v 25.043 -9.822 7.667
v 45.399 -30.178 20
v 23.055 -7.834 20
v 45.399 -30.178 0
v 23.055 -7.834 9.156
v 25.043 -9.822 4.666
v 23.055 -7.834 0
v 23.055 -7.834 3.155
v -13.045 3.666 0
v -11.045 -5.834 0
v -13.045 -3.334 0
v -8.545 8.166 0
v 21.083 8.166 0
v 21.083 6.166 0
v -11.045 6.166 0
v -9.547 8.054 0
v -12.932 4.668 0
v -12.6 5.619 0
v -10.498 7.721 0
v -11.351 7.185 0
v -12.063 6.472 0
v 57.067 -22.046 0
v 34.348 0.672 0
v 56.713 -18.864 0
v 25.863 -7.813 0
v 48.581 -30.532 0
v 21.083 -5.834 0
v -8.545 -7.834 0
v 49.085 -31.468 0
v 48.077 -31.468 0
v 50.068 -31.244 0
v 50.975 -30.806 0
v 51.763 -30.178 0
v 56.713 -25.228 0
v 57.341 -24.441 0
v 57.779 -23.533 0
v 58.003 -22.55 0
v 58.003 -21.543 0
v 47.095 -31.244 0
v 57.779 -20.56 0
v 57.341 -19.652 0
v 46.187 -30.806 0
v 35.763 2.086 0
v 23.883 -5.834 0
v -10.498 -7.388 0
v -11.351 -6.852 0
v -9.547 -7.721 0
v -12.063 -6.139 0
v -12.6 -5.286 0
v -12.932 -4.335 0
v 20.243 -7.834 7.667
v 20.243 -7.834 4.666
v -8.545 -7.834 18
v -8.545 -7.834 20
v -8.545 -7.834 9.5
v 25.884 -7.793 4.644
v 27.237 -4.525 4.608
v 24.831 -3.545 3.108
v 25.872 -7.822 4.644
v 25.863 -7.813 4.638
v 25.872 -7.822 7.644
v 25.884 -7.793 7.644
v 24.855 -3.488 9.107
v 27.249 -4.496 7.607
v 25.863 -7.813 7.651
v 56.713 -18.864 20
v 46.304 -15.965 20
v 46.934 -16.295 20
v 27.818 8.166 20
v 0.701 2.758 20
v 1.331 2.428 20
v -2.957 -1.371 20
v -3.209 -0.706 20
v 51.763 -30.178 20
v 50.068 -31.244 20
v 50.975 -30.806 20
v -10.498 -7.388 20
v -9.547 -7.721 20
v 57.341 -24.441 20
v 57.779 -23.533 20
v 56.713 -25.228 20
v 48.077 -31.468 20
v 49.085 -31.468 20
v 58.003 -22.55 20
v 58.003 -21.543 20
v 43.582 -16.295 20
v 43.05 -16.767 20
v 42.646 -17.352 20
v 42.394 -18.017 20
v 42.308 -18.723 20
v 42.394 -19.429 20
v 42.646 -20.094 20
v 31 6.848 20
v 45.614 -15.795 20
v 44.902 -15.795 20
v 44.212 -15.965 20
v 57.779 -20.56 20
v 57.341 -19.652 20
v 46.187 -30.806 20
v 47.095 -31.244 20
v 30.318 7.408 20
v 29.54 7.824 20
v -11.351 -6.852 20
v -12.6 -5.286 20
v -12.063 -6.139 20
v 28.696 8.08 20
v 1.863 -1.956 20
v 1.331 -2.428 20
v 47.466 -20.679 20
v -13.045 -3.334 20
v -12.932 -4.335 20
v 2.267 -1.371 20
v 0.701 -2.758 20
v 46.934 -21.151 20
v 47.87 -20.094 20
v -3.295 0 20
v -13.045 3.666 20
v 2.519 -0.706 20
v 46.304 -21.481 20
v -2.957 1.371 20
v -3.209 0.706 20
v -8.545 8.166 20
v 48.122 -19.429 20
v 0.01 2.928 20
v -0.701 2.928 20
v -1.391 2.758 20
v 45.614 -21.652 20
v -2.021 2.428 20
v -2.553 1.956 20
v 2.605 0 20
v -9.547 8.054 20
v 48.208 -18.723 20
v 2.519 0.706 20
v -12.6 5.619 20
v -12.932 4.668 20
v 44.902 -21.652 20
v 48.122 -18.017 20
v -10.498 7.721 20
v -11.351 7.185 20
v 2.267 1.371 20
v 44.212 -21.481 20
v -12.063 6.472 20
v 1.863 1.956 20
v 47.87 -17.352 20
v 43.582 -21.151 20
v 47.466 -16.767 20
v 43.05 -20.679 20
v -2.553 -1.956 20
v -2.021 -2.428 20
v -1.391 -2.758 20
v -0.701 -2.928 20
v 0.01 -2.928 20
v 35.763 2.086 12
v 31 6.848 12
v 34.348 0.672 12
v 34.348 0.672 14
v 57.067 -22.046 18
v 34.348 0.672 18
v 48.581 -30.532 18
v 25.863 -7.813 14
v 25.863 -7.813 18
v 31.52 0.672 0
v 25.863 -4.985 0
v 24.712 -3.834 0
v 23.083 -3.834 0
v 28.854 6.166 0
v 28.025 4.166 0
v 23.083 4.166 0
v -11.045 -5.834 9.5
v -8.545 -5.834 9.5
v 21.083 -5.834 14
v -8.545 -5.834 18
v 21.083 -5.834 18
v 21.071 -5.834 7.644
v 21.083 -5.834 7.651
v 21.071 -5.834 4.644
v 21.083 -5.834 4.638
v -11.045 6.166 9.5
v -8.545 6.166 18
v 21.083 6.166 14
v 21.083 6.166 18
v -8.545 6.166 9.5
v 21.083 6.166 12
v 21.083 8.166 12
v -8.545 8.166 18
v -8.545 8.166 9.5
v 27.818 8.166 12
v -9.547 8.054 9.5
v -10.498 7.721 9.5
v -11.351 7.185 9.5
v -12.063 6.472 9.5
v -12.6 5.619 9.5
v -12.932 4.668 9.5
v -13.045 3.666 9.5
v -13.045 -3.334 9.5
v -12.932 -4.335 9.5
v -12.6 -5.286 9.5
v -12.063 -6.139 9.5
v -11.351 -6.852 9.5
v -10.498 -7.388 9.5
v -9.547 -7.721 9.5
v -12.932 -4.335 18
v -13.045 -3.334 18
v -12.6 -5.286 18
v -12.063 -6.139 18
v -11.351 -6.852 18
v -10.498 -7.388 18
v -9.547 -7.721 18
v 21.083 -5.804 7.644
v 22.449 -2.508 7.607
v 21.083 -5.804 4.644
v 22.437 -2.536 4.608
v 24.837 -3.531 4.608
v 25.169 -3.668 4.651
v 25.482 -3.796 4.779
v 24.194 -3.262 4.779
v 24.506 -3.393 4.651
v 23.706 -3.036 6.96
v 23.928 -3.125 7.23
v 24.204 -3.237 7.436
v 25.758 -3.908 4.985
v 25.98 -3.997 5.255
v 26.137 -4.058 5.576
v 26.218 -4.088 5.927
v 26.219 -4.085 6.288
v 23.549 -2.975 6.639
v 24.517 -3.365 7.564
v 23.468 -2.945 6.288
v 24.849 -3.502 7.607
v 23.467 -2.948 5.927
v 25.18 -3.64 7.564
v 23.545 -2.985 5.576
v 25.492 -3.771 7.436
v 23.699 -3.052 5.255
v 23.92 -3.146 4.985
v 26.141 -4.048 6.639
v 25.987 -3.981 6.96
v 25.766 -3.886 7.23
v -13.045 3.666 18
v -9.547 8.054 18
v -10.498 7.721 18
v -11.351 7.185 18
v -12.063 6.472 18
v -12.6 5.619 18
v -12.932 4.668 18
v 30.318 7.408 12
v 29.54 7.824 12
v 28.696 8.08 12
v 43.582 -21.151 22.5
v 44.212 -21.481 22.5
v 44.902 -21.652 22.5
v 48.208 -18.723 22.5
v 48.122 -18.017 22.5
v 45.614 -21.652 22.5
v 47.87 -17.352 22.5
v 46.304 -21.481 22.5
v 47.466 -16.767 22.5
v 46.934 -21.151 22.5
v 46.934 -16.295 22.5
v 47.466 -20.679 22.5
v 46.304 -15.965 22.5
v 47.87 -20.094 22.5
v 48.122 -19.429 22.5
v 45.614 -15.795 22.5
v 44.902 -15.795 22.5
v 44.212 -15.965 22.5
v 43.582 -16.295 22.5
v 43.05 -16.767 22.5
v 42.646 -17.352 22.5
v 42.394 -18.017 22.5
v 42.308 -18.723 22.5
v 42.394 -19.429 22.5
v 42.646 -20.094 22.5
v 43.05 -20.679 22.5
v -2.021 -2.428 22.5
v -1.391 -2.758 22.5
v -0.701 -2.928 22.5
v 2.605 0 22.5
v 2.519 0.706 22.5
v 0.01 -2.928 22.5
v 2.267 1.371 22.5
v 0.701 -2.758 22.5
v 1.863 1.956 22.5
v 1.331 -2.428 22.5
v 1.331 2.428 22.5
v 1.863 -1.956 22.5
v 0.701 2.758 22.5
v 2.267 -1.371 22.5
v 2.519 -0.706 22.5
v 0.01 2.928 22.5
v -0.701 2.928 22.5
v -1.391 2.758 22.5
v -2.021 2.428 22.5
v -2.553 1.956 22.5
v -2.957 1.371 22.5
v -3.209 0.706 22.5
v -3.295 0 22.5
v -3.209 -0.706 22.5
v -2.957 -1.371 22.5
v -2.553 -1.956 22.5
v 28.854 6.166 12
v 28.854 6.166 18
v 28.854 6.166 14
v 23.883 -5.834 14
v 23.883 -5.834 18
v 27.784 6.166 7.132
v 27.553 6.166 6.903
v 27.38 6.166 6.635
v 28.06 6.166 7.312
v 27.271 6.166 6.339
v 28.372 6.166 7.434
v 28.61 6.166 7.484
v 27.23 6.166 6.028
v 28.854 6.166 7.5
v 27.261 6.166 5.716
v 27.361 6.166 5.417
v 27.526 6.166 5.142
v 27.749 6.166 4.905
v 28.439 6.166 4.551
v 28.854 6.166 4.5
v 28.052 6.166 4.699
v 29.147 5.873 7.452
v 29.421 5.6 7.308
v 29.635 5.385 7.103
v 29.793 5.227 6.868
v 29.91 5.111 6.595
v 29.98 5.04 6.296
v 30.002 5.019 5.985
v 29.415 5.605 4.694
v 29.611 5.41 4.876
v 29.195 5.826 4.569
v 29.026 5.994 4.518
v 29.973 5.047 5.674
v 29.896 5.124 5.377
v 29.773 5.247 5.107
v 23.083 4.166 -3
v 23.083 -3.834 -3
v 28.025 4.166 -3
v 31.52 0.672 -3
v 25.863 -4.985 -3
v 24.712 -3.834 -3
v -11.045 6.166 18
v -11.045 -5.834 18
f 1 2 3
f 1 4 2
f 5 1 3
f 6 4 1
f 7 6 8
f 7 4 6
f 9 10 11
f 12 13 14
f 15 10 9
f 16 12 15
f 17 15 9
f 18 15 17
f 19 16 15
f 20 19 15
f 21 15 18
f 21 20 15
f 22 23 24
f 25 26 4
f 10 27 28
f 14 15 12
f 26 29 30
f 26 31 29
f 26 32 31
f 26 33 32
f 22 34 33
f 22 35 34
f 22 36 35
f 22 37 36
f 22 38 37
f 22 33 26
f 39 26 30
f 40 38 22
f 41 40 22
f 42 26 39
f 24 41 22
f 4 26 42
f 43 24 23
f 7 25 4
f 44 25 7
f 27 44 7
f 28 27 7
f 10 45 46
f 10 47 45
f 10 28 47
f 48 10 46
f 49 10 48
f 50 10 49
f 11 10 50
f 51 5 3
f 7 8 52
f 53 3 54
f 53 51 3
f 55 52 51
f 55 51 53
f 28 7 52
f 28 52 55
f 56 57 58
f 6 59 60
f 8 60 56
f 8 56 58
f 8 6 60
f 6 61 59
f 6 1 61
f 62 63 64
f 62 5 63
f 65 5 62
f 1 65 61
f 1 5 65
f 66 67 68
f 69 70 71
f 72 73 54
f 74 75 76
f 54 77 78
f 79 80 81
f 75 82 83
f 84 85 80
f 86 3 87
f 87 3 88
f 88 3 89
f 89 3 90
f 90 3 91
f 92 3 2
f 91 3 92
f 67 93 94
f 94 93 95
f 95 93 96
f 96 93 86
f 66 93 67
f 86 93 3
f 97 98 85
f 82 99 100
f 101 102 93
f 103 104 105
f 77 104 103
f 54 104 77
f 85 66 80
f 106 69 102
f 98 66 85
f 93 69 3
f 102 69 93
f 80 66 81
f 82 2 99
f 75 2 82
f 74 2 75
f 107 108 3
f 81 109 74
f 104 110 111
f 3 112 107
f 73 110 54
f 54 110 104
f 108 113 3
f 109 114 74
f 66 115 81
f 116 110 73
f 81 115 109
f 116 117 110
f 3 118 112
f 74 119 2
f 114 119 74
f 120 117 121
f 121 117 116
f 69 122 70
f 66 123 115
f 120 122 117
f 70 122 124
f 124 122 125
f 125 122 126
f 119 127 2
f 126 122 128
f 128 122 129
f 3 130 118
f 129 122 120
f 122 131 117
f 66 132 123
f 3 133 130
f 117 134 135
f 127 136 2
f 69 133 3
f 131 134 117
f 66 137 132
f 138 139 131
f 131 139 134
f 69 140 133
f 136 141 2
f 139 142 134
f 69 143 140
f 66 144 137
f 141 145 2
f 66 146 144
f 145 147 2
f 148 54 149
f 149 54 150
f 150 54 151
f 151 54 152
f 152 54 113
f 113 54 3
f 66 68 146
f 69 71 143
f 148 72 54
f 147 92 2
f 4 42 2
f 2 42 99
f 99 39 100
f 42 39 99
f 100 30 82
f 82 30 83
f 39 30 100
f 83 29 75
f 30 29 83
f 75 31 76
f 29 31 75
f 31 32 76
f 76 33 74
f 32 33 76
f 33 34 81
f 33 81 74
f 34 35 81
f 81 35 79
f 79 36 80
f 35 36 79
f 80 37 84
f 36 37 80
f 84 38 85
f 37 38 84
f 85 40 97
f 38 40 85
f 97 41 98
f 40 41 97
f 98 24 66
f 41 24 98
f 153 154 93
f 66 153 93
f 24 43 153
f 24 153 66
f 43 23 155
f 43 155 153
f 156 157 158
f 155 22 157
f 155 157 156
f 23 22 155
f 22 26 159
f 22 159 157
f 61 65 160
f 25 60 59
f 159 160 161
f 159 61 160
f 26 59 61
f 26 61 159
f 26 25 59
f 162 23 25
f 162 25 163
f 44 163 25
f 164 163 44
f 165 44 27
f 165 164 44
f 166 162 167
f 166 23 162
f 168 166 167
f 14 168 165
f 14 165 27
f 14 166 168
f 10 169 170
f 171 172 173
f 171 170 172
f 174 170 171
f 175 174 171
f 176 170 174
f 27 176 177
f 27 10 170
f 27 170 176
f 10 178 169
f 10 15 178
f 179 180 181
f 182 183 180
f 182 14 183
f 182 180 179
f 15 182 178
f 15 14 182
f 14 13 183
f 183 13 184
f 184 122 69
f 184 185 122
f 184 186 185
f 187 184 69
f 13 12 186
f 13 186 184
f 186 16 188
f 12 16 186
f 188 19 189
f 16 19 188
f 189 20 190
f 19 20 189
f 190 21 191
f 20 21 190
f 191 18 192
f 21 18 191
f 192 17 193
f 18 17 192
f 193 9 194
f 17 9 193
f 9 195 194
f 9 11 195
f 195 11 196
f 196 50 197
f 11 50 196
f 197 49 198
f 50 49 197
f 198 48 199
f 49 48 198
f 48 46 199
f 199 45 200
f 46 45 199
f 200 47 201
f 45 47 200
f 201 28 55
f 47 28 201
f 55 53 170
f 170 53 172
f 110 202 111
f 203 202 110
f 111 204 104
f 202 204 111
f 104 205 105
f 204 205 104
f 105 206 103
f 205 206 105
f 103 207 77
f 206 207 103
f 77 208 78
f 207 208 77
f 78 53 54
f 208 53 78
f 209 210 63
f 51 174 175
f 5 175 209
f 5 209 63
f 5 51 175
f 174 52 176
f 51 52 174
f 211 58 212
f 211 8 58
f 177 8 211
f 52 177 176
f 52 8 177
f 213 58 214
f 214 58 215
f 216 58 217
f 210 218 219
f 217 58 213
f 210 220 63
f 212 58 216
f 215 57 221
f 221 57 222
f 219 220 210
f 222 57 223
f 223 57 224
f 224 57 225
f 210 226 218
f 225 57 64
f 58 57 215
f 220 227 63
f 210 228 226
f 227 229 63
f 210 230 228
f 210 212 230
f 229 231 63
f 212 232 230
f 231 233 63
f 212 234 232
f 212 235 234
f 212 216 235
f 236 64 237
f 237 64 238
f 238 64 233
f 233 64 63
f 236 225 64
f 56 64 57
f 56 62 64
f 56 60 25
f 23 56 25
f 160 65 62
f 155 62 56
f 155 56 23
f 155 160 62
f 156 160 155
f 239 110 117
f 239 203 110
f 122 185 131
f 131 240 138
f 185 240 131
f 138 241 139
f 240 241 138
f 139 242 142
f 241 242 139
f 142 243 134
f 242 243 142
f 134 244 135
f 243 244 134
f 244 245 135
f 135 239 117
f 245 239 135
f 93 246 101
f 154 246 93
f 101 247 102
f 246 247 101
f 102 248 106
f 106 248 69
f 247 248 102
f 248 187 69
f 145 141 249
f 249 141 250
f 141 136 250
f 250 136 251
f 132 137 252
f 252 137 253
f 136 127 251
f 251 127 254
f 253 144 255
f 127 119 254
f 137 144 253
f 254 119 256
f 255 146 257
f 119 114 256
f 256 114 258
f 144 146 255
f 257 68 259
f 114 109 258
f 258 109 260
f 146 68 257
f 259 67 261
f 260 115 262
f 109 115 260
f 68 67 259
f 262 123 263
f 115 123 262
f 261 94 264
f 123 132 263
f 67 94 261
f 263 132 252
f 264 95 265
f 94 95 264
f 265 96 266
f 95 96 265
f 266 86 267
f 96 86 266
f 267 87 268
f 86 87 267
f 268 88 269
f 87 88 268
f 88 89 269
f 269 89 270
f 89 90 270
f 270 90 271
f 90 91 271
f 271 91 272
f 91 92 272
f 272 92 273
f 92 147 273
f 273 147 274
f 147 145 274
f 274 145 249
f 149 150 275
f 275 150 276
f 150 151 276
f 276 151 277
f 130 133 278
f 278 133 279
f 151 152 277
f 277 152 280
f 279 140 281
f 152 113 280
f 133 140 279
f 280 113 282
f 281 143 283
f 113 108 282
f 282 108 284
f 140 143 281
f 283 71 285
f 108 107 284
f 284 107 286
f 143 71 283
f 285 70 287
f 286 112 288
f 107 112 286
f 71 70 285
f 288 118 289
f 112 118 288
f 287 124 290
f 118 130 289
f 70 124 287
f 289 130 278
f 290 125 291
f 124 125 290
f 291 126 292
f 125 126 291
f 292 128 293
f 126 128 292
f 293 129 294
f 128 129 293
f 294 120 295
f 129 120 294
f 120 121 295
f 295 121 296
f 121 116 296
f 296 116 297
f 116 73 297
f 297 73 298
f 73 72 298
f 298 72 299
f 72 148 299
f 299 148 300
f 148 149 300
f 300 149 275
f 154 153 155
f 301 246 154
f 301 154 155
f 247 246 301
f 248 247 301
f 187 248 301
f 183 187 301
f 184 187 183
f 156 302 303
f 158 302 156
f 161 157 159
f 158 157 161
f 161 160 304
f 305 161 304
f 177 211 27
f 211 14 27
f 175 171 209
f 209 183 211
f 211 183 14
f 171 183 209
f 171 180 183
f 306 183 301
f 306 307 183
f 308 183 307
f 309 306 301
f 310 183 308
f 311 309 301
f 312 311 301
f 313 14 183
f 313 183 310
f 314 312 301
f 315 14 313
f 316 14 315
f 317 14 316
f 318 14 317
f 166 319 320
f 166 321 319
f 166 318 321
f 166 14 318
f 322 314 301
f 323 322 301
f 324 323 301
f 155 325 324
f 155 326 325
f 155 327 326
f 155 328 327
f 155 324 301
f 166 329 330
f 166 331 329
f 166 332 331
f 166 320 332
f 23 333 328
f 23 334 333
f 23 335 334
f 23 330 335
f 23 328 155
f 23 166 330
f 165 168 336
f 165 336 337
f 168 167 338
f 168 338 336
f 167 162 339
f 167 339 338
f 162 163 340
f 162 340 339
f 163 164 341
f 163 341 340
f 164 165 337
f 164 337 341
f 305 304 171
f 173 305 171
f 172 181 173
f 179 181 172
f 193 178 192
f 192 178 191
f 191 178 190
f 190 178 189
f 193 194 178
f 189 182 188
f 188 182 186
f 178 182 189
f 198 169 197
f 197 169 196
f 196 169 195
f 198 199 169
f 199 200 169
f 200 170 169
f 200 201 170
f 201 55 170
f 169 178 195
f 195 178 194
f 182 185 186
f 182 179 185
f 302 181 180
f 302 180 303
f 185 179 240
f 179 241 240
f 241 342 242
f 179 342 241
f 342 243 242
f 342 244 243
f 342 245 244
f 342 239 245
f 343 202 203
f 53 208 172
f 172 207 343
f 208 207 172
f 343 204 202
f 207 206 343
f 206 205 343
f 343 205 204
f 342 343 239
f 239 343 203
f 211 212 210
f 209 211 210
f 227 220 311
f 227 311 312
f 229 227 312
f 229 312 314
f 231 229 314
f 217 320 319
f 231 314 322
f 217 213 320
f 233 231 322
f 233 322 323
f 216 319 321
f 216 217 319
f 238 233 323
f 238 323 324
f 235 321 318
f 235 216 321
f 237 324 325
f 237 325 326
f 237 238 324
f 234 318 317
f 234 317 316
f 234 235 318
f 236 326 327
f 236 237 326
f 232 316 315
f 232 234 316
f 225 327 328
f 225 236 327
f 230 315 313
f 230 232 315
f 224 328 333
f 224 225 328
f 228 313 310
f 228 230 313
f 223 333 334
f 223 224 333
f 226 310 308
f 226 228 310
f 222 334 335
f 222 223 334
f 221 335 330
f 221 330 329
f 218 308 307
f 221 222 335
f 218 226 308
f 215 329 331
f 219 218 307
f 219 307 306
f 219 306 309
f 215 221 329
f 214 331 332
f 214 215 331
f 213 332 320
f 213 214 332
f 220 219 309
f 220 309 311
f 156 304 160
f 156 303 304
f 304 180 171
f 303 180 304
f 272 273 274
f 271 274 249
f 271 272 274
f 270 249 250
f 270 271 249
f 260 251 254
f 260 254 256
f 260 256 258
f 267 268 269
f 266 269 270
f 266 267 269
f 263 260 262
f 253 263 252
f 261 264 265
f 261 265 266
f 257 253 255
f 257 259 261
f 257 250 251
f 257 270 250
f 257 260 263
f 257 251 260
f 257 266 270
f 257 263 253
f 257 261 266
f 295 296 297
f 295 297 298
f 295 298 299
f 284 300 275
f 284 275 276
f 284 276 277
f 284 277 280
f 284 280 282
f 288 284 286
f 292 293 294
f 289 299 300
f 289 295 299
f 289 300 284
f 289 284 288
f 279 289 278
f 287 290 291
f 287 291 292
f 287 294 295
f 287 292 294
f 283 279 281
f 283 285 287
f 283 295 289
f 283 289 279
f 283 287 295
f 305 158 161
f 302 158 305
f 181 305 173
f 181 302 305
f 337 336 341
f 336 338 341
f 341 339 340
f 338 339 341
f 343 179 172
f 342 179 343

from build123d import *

# Parameters (mm, degrees)
PAD003_DEPTH    = 20
POCKET001_DEPTH = 18
SKETCH_W        = 4.5
SKETCH_H        = 8.5
POCKET_DEPTH    = 16.001
PAD_DEPTH       = 18
PAD004_DEPTH    = 3
POCKET002_DEPTH = 12
SKETCH009_R     = 1.5
POCKET003_DEPTH = 33.587329
POCKET004_DEPTH = 10
POCKET005_DEPTH = 4
SKETCH012_R     = 2.95
PAD005_DEPTH    = 2.5


with BuildPart() as part:
    # Sketch004 → Pad003 (new body)
    with BuildSketch(Plane.XY):
        with BuildLine():
            Line((-13.045215, -3.333566), (-13.045215, 3.666434))
            ThreePointArc((-8.545215, 8.166434), (-11.727196, 6.848415), (-13.045215, 3.666434))
            Line((-8.545215, 8.166434), (27.818241, 8.166434))
            ThreePointArc((31.000221, 6.848415), (29.540316, 7.823892), (27.818241, 8.166434))
            Line((31.000221, 6.848415), (56.713067, -18.864432))
            ThreePointArc((56.713067, -25.228393), (58.031087, -22.046412), (56.713067, -18.864432))
            Line((56.713067, -25.228393), (51.76332, -30.17814))
            ThreePointArc((45.399359, -30.17814), (48.581339, -31.49616), (51.76332, -30.17814))
            Line((45.399359, -30.17814), (23.054785, -7.833566))
            Line((23.054785, -7.833566), (-8.545215, -7.833566))
            ThreePointArc((-13.045215, -3.333566), (-11.727196, -6.515546), (-8.545215, -7.833566))
        make_face()
    extrude(amount=PAD003_DEPTH)

    # Sketch005 (on Face12 of Pad003) → Pocket001 (cut)
    with BuildSketch(Plane(origin=(0, 0, 0), x_dir=(1, 0, 0), z_dir=(0, 0, -1))):
        Polygon((-11.045215, -6.166434), (-11.045215, 5.833566), (23.883212, 5.833566), (48.581339, 30.531693), (57.066621, 22.046412), (28.853775, -6.166434), align=None)
    extrude(amount=-POCKET001_DEPTH, mode=Mode.SUBTRACT)

    # Sketch (on Face3 of Pocket001) → Pocket (cut, through all)
    with BuildSketch(Plane.XZ.offset(7.833566)):
        with Locations((-10.795215, 13.75)):
            Rectangle(SKETCH_W, SKETCH_H)
    extrude(amount=-POCKET_DEPTH, mode=Mode.SUBTRACT)

    # Sketch006 (on Face27 of Pocket) → Pad (join)
    with BuildSketch(Plane(origin=(0, 0, 18), x_dir=(1, 0, 0), z_dir=(0, 0, -1))):
        Polygon((21.083212, 5.833566), (21.083212, -6.166434), (28.853775, -6.166434), (34.348392, -0.671817), (25.863111, 7.813465), (23.883212, 5.833566), align=None)
    extrude(amount=PAD_DEPTH)

    # Sketch007 (on Face16 of Pad) → Pad004 (join)
    with BuildSketch(Plane(origin=(0, 0, 0), x_dir=(1, 0, 0), z_dir=(0, 0, -1))):
        Polygon((23.083212, 3.833566), (24.711639, 3.833566), (25.863111, 4.985038), (31.519965, -0.671817), (28.025347, -4.166434), (23.083212, -4.166434), align=None)
    extrude(amount=PAD004_DEPTH)

    # Sketch008 (on Face4 of Pad004) → Pocket002 (cut)
    with BuildSketch(Plane(origin=(0, 0, 0), x_dir=(1, 0, 0), z_dir=(0, 0, -1))):
        with BuildLine():
            Line((21.083212, -6.166434), (21.083212, -8.166434))
            Line((21.083212, -8.166434), (27.818241, -8.166434))
            ThreePointArc((27.818241, -8.166434), (29.540316, -7.823892), (31.000221, -6.848415))
            Line((35.762606, -2.08603), (31.000221, -6.848415))
            Line((34.348392, -0.671817), (35.762606, -2.08603))
            Line((28.853775, -6.166434), (34.348392, -0.671817))
            Line((21.083212, -6.166434), (28.853775, -6.166434))
        make_face()
    extrude(amount=-POCKET002_DEPTH, mode=Mode.SUBTRACT)

    # Sketch009 (on DatumPlane) → Pocket003 (cut, through all)
    with BuildSketch(Plane(origin=(20.996104, -12.803661, 1.052949), x_dir=(-0.003926, -0.009478, -0.999947), z_dir=(0.382663, 0.923831, -0.010259))):
        with Locations((-5.157433, 0)):
            Circle(SKETCH009_R)
    extrude(amount=POCKET003_DEPTH, mode=Mode.SUBTRACT)

    # Sketch010 (on DatumPlane) → Pocket004 (cut)
    with BuildSketch(Plane(origin=(20.996104, -12.803661, 1.052949), x_dir=(-0.003926, -0.009478, -0.999947), z_dir=(0.382663, 0.923831, -0.010259))):
        Polygon((-3.657433, -2.598076), (-2.157433, 0), (-3.657433, 2.598076), (-6.657433, 2.598076), (-8.157433, 0), (-6.657433, -2.598076), align=None)
    extrude(amount=POCKET004_DEPTH, mode=Mode.SUBTRACT)

    # Sketch011 (on Face47 of Pocket004) → Pocket005 (cut)
    with BuildSketch(Plane(origin=(0, 0, 18), x_dir=(1, 0, 0), z_dir=(0, 0, -1))):
        Polygon((21.083212, 5.833566), (21.083212, -6.166434), (28.853775, -6.166434), (34.348392, -0.671817), (25.863111, 7.813465), (23.883212, 5.833566), align=None)
    extrude(amount=POCKET005_DEPTH, mode=Mode.SUBTRACT)

    # Sketch012 (on Face7 of Pocket005) → Pad005 (join)
    with BuildSketch(Plane.XY.offset(20)):
        with Locations((-0.345215, 0)):
            Circle(SKETCH012_R)
        with Locations((45.257938, -18.72301)):
            Circle(SKETCH012_R)
    extrude(amount=PAD005_DEPTH)


solid = part.part
